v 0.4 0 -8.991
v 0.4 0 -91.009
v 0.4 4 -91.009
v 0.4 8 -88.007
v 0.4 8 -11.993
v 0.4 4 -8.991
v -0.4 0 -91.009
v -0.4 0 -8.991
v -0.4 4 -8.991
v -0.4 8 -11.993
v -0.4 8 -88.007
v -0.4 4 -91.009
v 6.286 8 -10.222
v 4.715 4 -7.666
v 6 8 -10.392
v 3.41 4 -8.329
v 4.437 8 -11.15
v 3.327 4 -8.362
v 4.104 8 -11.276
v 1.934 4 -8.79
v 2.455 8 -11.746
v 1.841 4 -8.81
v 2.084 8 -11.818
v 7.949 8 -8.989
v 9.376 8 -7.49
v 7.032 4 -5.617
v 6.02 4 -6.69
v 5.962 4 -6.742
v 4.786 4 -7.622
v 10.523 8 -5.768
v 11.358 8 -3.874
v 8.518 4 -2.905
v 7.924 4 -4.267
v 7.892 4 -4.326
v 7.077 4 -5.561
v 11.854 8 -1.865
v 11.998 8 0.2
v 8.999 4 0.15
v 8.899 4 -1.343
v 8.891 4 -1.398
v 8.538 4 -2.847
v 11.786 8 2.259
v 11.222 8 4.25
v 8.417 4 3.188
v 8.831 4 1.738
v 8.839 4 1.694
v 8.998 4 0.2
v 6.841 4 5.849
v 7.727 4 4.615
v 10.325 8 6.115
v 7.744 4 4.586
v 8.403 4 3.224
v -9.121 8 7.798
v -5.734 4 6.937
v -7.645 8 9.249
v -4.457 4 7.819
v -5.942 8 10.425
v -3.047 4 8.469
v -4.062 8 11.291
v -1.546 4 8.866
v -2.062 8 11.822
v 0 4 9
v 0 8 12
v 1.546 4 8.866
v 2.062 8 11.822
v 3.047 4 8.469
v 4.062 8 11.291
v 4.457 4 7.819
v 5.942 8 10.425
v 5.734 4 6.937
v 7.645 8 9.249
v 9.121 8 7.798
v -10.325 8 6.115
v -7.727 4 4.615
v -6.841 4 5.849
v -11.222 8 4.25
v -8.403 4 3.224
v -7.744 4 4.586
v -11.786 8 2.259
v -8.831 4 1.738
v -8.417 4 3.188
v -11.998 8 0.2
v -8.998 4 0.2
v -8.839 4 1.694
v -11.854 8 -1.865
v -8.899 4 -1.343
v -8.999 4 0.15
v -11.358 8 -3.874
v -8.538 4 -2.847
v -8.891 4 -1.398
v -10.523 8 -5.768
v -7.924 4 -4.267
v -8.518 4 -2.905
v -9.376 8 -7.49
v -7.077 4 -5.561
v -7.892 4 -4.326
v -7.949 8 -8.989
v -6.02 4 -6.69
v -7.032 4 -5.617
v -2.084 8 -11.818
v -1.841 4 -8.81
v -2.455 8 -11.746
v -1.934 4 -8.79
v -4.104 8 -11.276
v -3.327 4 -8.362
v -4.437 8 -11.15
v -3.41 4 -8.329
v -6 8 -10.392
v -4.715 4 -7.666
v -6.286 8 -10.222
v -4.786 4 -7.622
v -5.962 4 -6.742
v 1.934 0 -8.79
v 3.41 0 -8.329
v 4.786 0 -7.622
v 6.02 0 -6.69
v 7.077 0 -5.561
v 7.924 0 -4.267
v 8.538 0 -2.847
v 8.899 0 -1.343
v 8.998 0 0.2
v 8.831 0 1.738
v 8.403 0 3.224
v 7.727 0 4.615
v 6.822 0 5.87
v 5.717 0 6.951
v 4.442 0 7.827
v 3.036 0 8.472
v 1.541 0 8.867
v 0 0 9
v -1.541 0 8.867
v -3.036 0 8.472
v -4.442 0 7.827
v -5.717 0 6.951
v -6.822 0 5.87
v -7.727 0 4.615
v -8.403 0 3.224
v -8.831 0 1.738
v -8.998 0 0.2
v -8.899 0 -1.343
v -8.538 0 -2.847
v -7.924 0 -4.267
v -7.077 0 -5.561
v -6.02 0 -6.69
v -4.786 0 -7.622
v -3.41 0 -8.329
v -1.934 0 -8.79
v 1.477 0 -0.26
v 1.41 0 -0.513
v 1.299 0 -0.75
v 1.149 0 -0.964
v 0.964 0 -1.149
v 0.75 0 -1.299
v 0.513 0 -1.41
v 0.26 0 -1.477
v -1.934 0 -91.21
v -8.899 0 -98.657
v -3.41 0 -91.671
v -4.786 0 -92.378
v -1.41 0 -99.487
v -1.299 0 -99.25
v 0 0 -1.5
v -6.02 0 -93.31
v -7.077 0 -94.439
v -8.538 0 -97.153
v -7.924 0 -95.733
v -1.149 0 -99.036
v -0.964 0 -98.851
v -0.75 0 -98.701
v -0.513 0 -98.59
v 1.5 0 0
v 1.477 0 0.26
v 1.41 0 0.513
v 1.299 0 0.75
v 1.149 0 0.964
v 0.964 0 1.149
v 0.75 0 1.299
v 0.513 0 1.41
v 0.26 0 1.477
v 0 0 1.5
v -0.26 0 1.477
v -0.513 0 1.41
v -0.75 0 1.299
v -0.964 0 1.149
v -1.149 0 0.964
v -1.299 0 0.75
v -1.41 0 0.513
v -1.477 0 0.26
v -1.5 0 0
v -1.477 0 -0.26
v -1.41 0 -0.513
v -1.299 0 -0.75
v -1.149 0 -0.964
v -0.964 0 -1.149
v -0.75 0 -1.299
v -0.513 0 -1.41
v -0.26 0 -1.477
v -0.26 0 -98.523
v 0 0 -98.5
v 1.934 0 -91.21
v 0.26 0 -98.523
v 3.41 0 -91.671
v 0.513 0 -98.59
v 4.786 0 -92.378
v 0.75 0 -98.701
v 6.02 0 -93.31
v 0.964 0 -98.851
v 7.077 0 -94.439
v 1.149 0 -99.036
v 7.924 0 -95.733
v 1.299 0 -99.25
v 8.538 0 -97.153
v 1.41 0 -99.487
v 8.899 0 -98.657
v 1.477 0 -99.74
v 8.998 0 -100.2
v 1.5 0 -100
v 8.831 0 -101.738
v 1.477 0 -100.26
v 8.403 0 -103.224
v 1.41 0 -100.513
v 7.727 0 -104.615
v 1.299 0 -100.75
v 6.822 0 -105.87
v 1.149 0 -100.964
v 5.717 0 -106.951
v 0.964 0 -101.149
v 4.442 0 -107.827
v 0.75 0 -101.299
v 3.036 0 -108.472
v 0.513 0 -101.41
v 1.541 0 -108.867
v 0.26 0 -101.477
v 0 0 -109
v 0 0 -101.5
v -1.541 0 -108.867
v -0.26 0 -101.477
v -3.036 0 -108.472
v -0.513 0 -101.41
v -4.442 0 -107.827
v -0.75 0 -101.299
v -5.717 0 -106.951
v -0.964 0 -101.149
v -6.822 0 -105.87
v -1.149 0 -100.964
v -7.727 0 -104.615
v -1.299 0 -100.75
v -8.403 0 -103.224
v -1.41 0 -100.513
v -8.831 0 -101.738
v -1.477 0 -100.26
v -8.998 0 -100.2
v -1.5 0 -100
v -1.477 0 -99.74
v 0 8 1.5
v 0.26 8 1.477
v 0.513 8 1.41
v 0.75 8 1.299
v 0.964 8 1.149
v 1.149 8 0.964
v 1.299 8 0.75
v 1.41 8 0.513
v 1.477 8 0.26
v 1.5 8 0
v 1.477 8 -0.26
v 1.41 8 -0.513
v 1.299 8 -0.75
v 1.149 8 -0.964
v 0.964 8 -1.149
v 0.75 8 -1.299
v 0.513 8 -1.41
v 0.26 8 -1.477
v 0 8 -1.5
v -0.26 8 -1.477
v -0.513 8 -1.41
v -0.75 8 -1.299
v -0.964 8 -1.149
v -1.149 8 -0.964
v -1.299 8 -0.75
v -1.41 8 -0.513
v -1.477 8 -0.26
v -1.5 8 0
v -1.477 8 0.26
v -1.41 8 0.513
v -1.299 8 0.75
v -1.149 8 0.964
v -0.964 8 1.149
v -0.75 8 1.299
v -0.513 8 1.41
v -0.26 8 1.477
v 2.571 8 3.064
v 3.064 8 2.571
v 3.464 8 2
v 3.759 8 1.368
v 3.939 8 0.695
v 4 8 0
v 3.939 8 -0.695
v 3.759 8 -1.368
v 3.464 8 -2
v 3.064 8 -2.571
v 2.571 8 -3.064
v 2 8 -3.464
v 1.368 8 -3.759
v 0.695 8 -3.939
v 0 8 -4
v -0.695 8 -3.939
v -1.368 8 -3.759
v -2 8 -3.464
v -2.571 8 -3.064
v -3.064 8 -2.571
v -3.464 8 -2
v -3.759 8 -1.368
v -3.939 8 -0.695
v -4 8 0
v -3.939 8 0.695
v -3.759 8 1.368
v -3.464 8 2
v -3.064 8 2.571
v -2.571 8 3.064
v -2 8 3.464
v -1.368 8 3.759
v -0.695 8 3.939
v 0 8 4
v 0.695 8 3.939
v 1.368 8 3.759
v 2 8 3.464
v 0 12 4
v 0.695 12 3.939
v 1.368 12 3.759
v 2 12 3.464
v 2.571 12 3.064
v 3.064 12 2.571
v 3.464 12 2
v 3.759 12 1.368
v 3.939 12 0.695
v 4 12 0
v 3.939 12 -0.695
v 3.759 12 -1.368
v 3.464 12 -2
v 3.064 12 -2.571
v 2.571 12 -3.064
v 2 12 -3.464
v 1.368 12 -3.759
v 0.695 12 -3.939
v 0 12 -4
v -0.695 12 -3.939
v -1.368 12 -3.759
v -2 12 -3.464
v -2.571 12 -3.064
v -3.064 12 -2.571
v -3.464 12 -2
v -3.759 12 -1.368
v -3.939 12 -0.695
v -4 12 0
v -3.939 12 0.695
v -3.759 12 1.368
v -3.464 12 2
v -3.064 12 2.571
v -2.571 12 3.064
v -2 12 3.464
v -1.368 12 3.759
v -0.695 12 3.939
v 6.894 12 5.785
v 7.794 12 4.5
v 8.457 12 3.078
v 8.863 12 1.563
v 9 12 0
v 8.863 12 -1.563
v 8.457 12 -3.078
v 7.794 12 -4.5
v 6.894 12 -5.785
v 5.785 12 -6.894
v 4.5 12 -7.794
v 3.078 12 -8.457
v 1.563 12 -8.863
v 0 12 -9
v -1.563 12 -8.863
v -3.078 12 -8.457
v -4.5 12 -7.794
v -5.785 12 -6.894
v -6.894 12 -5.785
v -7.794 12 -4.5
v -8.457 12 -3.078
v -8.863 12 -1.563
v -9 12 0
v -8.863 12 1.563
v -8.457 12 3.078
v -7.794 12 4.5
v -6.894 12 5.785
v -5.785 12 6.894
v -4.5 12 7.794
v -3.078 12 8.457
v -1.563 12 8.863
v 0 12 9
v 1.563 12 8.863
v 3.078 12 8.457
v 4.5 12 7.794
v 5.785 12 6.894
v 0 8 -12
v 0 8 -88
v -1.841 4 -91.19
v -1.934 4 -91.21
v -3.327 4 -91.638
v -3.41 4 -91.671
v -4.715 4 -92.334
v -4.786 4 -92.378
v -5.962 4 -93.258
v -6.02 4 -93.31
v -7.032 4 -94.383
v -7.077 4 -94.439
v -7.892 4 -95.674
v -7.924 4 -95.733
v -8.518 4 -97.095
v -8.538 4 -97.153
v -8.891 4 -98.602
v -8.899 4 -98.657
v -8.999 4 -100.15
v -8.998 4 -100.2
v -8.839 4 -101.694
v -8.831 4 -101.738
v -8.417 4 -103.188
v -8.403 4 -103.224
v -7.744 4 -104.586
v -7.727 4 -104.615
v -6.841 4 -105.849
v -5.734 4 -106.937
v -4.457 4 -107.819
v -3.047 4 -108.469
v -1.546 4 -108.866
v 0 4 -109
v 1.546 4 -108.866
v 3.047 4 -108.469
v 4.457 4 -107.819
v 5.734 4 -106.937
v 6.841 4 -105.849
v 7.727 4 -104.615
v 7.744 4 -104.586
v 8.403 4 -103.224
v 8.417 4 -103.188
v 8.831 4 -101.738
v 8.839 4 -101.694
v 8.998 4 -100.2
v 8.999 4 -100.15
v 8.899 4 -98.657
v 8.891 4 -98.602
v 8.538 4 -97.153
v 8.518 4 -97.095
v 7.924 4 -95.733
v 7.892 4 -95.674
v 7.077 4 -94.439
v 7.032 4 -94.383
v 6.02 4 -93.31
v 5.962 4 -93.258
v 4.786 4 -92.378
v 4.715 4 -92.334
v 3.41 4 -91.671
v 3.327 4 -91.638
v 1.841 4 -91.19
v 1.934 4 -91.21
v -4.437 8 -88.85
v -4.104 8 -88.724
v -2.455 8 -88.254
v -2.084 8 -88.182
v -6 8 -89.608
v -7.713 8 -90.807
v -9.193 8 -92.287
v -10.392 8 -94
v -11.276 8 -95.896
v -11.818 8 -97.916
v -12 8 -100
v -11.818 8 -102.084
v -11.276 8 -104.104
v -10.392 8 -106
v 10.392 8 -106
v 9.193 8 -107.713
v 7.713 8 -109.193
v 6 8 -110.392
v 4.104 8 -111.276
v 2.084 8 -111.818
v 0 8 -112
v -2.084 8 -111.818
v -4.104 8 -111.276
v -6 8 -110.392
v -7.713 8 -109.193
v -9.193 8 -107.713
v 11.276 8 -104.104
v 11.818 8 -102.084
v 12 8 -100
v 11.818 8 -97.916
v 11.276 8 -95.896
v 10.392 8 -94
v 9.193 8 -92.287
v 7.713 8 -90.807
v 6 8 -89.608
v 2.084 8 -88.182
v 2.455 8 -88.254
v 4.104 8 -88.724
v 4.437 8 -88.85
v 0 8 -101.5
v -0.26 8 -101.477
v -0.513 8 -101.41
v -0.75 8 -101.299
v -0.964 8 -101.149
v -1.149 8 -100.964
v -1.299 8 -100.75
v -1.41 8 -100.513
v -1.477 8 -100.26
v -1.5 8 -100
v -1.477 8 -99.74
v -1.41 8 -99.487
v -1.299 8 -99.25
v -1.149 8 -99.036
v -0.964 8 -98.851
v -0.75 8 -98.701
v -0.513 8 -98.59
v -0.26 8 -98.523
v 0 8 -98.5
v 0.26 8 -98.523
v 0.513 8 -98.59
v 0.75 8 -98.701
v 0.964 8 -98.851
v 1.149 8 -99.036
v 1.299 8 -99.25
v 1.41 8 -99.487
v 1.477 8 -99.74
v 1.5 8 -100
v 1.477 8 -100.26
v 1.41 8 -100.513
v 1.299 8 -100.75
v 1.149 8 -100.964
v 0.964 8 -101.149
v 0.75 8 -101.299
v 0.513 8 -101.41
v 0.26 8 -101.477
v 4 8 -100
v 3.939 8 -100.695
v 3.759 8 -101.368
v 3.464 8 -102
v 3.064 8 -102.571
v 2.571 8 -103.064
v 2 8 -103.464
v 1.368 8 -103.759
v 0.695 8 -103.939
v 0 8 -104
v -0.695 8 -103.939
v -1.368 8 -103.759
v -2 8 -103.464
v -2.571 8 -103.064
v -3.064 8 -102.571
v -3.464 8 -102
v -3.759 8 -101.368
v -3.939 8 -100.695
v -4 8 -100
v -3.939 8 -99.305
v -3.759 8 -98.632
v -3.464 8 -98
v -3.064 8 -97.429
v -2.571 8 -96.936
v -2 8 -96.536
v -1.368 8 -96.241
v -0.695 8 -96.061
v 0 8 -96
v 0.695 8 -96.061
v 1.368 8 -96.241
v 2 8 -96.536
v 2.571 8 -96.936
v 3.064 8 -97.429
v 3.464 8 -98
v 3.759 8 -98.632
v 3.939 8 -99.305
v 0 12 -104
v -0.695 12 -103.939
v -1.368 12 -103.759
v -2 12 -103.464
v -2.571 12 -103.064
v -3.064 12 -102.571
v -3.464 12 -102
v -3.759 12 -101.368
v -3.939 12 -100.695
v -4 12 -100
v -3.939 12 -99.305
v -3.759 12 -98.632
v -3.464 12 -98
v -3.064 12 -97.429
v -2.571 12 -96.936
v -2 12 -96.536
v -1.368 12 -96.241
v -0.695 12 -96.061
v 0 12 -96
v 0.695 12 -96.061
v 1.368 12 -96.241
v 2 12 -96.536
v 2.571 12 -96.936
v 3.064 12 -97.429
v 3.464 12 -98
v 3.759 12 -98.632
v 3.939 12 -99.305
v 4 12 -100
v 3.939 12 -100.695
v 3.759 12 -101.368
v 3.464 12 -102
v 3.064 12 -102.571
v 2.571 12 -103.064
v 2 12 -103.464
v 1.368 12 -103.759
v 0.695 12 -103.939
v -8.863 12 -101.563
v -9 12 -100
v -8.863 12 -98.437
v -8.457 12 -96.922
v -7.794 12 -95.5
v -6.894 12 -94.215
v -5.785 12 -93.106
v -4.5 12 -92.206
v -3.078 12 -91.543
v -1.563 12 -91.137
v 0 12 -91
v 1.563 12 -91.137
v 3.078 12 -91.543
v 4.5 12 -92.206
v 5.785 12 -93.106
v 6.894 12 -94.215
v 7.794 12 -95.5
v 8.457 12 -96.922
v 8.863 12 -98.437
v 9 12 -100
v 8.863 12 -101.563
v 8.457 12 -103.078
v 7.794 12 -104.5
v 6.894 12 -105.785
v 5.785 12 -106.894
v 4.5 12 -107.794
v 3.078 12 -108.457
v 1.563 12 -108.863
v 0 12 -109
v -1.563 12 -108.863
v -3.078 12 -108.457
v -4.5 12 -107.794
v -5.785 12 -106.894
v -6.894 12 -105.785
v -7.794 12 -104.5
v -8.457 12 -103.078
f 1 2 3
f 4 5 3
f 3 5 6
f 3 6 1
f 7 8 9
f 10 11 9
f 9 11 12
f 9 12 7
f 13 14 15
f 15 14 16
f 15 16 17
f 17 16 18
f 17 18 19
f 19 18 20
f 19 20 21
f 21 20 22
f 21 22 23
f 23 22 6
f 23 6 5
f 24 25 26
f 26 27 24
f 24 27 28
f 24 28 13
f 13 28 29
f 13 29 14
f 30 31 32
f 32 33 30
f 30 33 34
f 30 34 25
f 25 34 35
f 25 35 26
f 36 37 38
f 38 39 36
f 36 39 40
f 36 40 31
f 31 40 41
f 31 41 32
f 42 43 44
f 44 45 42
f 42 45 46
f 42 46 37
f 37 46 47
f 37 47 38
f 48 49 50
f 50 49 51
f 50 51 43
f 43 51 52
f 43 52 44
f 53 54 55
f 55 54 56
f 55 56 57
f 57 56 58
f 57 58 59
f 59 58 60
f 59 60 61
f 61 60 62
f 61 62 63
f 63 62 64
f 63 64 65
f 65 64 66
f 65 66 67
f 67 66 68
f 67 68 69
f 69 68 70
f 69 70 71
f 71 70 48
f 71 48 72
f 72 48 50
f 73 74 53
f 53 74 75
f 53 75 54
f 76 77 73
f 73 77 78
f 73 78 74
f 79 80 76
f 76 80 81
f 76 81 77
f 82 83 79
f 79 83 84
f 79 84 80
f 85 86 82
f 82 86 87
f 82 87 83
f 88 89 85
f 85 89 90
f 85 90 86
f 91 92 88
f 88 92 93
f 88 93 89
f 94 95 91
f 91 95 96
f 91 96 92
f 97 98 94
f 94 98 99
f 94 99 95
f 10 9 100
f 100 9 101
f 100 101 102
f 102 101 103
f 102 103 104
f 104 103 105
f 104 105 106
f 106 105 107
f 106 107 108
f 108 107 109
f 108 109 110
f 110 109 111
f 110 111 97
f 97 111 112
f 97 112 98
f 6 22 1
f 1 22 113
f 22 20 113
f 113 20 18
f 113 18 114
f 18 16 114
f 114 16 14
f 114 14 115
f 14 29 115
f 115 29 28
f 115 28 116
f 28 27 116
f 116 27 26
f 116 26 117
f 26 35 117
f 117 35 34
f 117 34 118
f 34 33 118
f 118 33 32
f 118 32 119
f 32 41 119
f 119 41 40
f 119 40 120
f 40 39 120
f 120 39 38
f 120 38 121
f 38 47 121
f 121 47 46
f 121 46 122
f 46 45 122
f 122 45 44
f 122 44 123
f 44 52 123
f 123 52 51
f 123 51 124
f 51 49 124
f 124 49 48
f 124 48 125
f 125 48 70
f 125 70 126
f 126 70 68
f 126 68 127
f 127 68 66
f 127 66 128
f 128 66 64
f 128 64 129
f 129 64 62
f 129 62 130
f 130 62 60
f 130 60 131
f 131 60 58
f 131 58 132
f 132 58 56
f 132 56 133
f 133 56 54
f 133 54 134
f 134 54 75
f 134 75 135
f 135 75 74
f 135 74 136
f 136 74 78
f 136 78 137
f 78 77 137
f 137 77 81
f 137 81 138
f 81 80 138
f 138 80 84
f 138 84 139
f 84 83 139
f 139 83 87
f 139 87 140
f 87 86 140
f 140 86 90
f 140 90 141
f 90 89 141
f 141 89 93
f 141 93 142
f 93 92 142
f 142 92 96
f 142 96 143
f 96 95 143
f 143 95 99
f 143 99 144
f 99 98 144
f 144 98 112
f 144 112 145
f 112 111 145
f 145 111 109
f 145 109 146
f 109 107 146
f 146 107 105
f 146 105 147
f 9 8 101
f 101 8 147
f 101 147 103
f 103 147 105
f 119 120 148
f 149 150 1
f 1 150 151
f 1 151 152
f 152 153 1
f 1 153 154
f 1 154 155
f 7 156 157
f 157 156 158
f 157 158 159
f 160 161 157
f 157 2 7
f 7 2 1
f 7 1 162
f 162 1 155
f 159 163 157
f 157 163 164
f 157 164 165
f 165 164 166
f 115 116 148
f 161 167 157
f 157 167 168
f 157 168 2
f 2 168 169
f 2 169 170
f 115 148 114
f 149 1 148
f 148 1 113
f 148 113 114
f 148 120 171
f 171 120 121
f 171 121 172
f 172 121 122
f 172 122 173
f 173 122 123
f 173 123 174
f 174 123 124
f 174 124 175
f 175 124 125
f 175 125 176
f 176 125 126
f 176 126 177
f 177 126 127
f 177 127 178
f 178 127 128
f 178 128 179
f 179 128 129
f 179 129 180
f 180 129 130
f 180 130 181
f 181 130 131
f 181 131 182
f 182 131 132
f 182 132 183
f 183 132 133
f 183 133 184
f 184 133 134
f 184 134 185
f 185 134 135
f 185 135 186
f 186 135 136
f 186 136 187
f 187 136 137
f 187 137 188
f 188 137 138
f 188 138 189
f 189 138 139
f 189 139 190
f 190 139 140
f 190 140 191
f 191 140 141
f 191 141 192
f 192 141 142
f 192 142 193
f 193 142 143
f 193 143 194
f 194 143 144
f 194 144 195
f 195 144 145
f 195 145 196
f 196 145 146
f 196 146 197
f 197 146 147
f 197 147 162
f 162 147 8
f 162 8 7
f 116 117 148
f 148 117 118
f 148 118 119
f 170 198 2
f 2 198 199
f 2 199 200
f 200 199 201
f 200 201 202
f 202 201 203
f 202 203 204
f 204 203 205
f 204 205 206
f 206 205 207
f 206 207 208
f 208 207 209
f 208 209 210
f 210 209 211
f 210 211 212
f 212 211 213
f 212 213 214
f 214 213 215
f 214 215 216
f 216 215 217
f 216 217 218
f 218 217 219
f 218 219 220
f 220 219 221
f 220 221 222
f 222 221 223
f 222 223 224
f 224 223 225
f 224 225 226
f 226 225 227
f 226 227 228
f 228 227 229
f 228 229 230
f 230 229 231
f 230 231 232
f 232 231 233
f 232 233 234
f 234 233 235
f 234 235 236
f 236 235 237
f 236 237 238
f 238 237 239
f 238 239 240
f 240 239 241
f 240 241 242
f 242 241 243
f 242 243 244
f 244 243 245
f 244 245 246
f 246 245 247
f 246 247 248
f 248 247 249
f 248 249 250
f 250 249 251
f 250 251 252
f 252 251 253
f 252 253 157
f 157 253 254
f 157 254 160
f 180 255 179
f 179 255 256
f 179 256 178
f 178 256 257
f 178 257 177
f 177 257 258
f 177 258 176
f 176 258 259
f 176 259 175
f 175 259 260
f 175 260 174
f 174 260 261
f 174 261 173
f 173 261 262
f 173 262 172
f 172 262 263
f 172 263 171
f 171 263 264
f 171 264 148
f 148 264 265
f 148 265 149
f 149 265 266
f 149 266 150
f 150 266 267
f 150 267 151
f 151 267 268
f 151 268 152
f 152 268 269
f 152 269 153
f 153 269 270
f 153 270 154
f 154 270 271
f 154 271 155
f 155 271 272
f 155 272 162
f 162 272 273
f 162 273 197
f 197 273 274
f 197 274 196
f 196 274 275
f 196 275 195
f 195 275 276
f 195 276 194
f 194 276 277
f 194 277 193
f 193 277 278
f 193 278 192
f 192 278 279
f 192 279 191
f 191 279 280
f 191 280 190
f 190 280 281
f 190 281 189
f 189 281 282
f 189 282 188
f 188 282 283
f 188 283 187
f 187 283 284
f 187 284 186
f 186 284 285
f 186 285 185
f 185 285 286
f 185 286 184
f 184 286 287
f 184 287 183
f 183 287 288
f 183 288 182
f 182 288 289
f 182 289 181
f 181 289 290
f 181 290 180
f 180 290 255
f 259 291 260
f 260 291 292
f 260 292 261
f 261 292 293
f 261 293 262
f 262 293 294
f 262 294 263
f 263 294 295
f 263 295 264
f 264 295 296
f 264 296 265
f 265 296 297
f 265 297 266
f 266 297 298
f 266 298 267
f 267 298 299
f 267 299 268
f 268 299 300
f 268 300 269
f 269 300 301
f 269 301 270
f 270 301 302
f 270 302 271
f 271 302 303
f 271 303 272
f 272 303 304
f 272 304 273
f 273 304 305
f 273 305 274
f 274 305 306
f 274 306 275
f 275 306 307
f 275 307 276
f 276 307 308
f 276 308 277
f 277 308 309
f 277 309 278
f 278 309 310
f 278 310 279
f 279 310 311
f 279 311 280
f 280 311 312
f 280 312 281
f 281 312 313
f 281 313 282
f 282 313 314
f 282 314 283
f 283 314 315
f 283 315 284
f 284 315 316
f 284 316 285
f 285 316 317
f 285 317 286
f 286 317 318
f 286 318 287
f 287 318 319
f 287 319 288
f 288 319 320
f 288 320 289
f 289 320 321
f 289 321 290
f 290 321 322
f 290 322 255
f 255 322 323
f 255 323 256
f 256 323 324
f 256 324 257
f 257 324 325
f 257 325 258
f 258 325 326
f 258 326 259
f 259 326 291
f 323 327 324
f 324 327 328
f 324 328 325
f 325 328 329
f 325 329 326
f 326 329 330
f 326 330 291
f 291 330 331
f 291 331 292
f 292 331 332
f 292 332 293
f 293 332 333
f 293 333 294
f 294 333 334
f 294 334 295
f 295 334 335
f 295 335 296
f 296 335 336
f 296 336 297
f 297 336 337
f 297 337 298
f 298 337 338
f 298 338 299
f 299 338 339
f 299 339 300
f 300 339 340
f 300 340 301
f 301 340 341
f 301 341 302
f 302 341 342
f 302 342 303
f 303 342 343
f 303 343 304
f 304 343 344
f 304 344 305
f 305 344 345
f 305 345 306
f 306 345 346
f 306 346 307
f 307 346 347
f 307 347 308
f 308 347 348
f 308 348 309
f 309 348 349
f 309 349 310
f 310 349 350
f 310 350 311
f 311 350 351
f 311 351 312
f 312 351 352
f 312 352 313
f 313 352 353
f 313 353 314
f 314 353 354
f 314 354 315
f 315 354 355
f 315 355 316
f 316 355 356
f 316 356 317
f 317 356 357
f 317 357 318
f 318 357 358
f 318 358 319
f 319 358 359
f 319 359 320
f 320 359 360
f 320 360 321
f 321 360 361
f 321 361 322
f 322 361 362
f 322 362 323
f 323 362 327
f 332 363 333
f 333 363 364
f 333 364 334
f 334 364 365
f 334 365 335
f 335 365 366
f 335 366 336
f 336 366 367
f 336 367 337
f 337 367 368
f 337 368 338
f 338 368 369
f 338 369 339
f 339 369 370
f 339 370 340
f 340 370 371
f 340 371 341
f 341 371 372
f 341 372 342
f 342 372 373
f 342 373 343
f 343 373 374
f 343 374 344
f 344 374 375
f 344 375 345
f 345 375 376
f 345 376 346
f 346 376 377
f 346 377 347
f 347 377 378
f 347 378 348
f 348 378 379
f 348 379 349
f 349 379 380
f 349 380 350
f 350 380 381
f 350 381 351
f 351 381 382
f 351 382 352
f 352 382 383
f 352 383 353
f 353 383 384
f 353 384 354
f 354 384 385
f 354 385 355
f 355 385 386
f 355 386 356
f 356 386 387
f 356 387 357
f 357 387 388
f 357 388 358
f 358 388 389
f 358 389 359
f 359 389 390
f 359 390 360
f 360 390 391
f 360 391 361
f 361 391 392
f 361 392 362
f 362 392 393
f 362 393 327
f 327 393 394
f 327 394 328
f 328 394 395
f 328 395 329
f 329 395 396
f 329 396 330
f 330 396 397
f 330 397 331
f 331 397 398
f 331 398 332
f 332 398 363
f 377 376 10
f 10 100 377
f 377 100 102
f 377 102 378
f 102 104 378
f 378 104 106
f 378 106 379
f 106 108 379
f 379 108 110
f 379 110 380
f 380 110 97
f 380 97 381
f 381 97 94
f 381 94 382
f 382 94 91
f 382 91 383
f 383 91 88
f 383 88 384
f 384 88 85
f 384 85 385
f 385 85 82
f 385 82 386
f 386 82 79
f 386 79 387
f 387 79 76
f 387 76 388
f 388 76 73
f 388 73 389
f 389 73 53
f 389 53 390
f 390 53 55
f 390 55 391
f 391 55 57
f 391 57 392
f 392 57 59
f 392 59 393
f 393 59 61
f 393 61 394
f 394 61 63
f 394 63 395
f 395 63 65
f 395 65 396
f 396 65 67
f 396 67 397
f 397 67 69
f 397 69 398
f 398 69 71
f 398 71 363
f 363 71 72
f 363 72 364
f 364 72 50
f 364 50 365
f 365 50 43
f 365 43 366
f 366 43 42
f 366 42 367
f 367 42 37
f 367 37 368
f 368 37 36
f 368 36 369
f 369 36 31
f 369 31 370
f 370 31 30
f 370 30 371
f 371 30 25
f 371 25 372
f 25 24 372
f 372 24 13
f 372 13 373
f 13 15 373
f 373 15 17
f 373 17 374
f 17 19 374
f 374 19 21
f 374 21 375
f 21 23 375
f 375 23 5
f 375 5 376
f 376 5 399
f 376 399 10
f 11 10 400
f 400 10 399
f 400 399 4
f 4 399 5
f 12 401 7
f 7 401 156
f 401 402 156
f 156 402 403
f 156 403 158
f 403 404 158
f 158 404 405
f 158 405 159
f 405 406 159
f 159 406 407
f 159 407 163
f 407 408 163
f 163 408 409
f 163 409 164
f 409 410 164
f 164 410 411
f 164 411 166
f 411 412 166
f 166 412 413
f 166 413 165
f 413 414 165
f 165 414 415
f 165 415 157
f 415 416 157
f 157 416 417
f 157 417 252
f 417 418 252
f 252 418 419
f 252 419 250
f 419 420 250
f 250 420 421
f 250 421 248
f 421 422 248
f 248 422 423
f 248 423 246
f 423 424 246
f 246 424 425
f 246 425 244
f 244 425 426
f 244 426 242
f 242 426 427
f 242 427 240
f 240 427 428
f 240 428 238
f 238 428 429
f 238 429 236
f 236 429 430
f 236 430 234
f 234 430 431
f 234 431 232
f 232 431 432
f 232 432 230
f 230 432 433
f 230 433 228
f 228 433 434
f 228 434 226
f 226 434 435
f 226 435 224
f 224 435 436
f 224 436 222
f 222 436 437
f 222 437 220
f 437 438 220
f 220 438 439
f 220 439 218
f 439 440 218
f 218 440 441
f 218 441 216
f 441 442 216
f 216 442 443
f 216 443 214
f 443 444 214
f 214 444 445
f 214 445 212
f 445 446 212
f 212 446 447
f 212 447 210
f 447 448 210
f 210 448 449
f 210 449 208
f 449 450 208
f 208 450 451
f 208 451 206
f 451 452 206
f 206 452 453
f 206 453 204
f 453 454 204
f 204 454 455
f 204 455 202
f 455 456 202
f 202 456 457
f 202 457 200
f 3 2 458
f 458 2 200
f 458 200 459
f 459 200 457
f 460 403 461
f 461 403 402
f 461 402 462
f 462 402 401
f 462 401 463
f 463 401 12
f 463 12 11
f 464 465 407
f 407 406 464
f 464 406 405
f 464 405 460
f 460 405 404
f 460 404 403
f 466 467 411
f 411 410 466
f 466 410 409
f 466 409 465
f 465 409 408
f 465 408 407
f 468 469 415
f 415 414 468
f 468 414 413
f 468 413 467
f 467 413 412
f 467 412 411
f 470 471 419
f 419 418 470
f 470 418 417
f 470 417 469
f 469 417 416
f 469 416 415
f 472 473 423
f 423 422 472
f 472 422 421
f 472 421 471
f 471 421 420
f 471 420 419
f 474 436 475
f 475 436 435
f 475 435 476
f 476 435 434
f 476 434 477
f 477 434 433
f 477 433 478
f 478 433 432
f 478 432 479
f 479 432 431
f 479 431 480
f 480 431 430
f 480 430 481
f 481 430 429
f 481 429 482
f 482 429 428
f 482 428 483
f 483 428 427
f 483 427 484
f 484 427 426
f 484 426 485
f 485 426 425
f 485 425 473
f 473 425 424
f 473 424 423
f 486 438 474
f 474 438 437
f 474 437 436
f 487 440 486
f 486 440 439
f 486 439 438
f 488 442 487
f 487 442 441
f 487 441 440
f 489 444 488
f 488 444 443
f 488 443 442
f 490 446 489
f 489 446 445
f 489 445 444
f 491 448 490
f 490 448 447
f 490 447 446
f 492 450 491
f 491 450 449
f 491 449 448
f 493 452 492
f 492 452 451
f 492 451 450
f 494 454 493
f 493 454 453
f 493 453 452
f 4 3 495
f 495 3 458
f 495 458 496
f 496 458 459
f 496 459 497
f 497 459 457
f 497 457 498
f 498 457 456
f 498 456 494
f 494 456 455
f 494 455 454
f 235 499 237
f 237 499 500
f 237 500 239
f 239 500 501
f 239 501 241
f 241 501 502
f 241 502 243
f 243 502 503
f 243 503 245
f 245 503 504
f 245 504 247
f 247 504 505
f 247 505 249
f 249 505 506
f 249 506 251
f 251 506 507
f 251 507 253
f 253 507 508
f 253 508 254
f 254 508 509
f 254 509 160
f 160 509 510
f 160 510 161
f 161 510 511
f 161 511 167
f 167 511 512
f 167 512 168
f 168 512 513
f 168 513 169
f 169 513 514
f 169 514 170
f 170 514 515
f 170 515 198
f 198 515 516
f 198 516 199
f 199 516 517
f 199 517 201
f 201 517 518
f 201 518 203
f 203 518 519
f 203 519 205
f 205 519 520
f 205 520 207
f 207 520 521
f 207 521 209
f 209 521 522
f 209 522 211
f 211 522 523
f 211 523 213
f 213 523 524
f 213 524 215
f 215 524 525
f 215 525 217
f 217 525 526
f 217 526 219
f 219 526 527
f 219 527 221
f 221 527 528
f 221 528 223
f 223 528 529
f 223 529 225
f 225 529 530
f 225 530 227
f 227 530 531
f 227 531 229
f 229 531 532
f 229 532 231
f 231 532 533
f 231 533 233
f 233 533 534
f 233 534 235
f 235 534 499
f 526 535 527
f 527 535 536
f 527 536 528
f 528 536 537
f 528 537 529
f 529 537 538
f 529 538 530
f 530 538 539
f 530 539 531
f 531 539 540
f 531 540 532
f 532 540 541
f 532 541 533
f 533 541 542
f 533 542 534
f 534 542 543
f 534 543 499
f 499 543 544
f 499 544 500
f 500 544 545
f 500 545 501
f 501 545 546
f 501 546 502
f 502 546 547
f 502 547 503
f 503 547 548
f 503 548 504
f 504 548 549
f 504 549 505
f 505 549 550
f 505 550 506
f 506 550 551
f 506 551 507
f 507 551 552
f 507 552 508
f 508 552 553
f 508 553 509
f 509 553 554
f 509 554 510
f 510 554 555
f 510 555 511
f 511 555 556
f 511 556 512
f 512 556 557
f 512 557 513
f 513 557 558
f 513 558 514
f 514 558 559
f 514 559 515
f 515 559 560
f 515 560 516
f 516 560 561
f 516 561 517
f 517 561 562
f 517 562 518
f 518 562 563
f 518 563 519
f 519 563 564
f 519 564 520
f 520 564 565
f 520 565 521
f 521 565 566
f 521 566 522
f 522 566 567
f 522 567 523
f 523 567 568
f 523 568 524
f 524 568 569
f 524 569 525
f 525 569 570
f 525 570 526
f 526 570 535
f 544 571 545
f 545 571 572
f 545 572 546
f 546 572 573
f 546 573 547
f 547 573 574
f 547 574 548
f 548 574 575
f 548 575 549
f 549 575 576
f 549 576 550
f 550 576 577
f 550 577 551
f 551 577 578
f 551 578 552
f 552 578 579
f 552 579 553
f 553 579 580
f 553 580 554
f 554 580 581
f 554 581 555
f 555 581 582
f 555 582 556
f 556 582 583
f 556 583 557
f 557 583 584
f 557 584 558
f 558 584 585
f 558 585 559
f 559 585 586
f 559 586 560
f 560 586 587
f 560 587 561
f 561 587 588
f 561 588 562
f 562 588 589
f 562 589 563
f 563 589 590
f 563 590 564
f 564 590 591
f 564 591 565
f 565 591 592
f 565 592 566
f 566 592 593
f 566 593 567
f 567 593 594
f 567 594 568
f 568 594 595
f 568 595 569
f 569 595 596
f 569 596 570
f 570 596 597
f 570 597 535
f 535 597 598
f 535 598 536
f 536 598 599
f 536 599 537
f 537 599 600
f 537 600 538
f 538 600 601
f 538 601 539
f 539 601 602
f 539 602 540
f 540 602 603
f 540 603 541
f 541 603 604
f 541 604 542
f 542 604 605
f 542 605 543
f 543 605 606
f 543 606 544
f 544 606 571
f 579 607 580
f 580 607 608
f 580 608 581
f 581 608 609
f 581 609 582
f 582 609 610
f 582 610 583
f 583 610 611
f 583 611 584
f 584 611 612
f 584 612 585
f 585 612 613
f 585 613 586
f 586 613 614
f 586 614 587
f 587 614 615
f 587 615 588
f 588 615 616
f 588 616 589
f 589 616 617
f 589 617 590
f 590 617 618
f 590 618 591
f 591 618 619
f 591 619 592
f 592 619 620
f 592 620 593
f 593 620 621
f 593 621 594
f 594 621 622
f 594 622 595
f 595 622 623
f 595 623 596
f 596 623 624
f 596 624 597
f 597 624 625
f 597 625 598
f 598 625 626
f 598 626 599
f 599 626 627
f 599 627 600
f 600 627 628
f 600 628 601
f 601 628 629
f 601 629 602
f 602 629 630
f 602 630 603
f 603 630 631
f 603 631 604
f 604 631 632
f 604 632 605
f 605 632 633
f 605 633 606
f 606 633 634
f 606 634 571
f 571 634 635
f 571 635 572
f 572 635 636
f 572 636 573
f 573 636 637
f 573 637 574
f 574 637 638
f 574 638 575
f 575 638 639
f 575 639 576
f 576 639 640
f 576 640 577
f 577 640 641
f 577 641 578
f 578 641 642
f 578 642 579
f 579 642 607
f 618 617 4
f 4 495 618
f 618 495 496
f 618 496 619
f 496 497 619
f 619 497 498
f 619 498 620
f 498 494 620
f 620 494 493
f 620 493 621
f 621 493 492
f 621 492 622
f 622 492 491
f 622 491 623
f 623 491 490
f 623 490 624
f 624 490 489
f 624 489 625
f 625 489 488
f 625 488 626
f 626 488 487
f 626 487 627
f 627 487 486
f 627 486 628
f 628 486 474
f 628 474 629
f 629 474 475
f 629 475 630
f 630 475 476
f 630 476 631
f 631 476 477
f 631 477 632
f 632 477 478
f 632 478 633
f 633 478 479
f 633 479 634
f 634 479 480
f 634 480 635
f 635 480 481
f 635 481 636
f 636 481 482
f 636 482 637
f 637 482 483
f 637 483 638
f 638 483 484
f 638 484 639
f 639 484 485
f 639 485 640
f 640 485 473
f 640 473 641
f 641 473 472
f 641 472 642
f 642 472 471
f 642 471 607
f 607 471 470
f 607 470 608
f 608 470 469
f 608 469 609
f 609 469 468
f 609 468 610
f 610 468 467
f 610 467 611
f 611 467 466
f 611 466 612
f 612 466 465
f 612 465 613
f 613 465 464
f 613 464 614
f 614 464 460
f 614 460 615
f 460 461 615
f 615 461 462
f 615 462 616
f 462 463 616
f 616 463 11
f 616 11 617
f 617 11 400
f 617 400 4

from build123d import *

# Parameters (mm, degrees)
SKETCH2_W           = 0.8
SKETCH2_H           = 92
BOSS_EXTRUDE1_DEPTH = 8


with BuildPart() as part:
    # Sketch1 → Revolve1 (revolve)
    with BuildSketch(Plane(origin=(0, 0, 0), x_dir=(0, 0, -1), z_dir=(1, 0, 0))):
        Polygon((1.5, 0), (1.5, 8), (4, 8), (4, 12), (9, 12), (12, 8), (9, 4), (9, 0), align=None)
    revolve(axis=Axis((0, 55, 0), (0, -1, 0)))


with BuildPart() as body_2:
    # Mirror2: mirrored copy
    add(part.part.mirror(Plane.XY.offset(-50)))


with BuildPart() as part_1:
    add(part.part)

    add(body_2.part)  # Boss-Extrude1 merges body 2
    # Sketch2 → Boss-Extrude1 (add)
    with BuildSketch(Plane(origin=(0, 0, 0), x_dir=(1, 0, 0), z_dir=(0, 1, 0))):
        with Locations((0, 50)):
            Rectangle(SKETCH2_W, SKETCH2_H)
    extrude(amount=BOSS_EXTRUDE1_DEPTH)


solid = part_1.part
